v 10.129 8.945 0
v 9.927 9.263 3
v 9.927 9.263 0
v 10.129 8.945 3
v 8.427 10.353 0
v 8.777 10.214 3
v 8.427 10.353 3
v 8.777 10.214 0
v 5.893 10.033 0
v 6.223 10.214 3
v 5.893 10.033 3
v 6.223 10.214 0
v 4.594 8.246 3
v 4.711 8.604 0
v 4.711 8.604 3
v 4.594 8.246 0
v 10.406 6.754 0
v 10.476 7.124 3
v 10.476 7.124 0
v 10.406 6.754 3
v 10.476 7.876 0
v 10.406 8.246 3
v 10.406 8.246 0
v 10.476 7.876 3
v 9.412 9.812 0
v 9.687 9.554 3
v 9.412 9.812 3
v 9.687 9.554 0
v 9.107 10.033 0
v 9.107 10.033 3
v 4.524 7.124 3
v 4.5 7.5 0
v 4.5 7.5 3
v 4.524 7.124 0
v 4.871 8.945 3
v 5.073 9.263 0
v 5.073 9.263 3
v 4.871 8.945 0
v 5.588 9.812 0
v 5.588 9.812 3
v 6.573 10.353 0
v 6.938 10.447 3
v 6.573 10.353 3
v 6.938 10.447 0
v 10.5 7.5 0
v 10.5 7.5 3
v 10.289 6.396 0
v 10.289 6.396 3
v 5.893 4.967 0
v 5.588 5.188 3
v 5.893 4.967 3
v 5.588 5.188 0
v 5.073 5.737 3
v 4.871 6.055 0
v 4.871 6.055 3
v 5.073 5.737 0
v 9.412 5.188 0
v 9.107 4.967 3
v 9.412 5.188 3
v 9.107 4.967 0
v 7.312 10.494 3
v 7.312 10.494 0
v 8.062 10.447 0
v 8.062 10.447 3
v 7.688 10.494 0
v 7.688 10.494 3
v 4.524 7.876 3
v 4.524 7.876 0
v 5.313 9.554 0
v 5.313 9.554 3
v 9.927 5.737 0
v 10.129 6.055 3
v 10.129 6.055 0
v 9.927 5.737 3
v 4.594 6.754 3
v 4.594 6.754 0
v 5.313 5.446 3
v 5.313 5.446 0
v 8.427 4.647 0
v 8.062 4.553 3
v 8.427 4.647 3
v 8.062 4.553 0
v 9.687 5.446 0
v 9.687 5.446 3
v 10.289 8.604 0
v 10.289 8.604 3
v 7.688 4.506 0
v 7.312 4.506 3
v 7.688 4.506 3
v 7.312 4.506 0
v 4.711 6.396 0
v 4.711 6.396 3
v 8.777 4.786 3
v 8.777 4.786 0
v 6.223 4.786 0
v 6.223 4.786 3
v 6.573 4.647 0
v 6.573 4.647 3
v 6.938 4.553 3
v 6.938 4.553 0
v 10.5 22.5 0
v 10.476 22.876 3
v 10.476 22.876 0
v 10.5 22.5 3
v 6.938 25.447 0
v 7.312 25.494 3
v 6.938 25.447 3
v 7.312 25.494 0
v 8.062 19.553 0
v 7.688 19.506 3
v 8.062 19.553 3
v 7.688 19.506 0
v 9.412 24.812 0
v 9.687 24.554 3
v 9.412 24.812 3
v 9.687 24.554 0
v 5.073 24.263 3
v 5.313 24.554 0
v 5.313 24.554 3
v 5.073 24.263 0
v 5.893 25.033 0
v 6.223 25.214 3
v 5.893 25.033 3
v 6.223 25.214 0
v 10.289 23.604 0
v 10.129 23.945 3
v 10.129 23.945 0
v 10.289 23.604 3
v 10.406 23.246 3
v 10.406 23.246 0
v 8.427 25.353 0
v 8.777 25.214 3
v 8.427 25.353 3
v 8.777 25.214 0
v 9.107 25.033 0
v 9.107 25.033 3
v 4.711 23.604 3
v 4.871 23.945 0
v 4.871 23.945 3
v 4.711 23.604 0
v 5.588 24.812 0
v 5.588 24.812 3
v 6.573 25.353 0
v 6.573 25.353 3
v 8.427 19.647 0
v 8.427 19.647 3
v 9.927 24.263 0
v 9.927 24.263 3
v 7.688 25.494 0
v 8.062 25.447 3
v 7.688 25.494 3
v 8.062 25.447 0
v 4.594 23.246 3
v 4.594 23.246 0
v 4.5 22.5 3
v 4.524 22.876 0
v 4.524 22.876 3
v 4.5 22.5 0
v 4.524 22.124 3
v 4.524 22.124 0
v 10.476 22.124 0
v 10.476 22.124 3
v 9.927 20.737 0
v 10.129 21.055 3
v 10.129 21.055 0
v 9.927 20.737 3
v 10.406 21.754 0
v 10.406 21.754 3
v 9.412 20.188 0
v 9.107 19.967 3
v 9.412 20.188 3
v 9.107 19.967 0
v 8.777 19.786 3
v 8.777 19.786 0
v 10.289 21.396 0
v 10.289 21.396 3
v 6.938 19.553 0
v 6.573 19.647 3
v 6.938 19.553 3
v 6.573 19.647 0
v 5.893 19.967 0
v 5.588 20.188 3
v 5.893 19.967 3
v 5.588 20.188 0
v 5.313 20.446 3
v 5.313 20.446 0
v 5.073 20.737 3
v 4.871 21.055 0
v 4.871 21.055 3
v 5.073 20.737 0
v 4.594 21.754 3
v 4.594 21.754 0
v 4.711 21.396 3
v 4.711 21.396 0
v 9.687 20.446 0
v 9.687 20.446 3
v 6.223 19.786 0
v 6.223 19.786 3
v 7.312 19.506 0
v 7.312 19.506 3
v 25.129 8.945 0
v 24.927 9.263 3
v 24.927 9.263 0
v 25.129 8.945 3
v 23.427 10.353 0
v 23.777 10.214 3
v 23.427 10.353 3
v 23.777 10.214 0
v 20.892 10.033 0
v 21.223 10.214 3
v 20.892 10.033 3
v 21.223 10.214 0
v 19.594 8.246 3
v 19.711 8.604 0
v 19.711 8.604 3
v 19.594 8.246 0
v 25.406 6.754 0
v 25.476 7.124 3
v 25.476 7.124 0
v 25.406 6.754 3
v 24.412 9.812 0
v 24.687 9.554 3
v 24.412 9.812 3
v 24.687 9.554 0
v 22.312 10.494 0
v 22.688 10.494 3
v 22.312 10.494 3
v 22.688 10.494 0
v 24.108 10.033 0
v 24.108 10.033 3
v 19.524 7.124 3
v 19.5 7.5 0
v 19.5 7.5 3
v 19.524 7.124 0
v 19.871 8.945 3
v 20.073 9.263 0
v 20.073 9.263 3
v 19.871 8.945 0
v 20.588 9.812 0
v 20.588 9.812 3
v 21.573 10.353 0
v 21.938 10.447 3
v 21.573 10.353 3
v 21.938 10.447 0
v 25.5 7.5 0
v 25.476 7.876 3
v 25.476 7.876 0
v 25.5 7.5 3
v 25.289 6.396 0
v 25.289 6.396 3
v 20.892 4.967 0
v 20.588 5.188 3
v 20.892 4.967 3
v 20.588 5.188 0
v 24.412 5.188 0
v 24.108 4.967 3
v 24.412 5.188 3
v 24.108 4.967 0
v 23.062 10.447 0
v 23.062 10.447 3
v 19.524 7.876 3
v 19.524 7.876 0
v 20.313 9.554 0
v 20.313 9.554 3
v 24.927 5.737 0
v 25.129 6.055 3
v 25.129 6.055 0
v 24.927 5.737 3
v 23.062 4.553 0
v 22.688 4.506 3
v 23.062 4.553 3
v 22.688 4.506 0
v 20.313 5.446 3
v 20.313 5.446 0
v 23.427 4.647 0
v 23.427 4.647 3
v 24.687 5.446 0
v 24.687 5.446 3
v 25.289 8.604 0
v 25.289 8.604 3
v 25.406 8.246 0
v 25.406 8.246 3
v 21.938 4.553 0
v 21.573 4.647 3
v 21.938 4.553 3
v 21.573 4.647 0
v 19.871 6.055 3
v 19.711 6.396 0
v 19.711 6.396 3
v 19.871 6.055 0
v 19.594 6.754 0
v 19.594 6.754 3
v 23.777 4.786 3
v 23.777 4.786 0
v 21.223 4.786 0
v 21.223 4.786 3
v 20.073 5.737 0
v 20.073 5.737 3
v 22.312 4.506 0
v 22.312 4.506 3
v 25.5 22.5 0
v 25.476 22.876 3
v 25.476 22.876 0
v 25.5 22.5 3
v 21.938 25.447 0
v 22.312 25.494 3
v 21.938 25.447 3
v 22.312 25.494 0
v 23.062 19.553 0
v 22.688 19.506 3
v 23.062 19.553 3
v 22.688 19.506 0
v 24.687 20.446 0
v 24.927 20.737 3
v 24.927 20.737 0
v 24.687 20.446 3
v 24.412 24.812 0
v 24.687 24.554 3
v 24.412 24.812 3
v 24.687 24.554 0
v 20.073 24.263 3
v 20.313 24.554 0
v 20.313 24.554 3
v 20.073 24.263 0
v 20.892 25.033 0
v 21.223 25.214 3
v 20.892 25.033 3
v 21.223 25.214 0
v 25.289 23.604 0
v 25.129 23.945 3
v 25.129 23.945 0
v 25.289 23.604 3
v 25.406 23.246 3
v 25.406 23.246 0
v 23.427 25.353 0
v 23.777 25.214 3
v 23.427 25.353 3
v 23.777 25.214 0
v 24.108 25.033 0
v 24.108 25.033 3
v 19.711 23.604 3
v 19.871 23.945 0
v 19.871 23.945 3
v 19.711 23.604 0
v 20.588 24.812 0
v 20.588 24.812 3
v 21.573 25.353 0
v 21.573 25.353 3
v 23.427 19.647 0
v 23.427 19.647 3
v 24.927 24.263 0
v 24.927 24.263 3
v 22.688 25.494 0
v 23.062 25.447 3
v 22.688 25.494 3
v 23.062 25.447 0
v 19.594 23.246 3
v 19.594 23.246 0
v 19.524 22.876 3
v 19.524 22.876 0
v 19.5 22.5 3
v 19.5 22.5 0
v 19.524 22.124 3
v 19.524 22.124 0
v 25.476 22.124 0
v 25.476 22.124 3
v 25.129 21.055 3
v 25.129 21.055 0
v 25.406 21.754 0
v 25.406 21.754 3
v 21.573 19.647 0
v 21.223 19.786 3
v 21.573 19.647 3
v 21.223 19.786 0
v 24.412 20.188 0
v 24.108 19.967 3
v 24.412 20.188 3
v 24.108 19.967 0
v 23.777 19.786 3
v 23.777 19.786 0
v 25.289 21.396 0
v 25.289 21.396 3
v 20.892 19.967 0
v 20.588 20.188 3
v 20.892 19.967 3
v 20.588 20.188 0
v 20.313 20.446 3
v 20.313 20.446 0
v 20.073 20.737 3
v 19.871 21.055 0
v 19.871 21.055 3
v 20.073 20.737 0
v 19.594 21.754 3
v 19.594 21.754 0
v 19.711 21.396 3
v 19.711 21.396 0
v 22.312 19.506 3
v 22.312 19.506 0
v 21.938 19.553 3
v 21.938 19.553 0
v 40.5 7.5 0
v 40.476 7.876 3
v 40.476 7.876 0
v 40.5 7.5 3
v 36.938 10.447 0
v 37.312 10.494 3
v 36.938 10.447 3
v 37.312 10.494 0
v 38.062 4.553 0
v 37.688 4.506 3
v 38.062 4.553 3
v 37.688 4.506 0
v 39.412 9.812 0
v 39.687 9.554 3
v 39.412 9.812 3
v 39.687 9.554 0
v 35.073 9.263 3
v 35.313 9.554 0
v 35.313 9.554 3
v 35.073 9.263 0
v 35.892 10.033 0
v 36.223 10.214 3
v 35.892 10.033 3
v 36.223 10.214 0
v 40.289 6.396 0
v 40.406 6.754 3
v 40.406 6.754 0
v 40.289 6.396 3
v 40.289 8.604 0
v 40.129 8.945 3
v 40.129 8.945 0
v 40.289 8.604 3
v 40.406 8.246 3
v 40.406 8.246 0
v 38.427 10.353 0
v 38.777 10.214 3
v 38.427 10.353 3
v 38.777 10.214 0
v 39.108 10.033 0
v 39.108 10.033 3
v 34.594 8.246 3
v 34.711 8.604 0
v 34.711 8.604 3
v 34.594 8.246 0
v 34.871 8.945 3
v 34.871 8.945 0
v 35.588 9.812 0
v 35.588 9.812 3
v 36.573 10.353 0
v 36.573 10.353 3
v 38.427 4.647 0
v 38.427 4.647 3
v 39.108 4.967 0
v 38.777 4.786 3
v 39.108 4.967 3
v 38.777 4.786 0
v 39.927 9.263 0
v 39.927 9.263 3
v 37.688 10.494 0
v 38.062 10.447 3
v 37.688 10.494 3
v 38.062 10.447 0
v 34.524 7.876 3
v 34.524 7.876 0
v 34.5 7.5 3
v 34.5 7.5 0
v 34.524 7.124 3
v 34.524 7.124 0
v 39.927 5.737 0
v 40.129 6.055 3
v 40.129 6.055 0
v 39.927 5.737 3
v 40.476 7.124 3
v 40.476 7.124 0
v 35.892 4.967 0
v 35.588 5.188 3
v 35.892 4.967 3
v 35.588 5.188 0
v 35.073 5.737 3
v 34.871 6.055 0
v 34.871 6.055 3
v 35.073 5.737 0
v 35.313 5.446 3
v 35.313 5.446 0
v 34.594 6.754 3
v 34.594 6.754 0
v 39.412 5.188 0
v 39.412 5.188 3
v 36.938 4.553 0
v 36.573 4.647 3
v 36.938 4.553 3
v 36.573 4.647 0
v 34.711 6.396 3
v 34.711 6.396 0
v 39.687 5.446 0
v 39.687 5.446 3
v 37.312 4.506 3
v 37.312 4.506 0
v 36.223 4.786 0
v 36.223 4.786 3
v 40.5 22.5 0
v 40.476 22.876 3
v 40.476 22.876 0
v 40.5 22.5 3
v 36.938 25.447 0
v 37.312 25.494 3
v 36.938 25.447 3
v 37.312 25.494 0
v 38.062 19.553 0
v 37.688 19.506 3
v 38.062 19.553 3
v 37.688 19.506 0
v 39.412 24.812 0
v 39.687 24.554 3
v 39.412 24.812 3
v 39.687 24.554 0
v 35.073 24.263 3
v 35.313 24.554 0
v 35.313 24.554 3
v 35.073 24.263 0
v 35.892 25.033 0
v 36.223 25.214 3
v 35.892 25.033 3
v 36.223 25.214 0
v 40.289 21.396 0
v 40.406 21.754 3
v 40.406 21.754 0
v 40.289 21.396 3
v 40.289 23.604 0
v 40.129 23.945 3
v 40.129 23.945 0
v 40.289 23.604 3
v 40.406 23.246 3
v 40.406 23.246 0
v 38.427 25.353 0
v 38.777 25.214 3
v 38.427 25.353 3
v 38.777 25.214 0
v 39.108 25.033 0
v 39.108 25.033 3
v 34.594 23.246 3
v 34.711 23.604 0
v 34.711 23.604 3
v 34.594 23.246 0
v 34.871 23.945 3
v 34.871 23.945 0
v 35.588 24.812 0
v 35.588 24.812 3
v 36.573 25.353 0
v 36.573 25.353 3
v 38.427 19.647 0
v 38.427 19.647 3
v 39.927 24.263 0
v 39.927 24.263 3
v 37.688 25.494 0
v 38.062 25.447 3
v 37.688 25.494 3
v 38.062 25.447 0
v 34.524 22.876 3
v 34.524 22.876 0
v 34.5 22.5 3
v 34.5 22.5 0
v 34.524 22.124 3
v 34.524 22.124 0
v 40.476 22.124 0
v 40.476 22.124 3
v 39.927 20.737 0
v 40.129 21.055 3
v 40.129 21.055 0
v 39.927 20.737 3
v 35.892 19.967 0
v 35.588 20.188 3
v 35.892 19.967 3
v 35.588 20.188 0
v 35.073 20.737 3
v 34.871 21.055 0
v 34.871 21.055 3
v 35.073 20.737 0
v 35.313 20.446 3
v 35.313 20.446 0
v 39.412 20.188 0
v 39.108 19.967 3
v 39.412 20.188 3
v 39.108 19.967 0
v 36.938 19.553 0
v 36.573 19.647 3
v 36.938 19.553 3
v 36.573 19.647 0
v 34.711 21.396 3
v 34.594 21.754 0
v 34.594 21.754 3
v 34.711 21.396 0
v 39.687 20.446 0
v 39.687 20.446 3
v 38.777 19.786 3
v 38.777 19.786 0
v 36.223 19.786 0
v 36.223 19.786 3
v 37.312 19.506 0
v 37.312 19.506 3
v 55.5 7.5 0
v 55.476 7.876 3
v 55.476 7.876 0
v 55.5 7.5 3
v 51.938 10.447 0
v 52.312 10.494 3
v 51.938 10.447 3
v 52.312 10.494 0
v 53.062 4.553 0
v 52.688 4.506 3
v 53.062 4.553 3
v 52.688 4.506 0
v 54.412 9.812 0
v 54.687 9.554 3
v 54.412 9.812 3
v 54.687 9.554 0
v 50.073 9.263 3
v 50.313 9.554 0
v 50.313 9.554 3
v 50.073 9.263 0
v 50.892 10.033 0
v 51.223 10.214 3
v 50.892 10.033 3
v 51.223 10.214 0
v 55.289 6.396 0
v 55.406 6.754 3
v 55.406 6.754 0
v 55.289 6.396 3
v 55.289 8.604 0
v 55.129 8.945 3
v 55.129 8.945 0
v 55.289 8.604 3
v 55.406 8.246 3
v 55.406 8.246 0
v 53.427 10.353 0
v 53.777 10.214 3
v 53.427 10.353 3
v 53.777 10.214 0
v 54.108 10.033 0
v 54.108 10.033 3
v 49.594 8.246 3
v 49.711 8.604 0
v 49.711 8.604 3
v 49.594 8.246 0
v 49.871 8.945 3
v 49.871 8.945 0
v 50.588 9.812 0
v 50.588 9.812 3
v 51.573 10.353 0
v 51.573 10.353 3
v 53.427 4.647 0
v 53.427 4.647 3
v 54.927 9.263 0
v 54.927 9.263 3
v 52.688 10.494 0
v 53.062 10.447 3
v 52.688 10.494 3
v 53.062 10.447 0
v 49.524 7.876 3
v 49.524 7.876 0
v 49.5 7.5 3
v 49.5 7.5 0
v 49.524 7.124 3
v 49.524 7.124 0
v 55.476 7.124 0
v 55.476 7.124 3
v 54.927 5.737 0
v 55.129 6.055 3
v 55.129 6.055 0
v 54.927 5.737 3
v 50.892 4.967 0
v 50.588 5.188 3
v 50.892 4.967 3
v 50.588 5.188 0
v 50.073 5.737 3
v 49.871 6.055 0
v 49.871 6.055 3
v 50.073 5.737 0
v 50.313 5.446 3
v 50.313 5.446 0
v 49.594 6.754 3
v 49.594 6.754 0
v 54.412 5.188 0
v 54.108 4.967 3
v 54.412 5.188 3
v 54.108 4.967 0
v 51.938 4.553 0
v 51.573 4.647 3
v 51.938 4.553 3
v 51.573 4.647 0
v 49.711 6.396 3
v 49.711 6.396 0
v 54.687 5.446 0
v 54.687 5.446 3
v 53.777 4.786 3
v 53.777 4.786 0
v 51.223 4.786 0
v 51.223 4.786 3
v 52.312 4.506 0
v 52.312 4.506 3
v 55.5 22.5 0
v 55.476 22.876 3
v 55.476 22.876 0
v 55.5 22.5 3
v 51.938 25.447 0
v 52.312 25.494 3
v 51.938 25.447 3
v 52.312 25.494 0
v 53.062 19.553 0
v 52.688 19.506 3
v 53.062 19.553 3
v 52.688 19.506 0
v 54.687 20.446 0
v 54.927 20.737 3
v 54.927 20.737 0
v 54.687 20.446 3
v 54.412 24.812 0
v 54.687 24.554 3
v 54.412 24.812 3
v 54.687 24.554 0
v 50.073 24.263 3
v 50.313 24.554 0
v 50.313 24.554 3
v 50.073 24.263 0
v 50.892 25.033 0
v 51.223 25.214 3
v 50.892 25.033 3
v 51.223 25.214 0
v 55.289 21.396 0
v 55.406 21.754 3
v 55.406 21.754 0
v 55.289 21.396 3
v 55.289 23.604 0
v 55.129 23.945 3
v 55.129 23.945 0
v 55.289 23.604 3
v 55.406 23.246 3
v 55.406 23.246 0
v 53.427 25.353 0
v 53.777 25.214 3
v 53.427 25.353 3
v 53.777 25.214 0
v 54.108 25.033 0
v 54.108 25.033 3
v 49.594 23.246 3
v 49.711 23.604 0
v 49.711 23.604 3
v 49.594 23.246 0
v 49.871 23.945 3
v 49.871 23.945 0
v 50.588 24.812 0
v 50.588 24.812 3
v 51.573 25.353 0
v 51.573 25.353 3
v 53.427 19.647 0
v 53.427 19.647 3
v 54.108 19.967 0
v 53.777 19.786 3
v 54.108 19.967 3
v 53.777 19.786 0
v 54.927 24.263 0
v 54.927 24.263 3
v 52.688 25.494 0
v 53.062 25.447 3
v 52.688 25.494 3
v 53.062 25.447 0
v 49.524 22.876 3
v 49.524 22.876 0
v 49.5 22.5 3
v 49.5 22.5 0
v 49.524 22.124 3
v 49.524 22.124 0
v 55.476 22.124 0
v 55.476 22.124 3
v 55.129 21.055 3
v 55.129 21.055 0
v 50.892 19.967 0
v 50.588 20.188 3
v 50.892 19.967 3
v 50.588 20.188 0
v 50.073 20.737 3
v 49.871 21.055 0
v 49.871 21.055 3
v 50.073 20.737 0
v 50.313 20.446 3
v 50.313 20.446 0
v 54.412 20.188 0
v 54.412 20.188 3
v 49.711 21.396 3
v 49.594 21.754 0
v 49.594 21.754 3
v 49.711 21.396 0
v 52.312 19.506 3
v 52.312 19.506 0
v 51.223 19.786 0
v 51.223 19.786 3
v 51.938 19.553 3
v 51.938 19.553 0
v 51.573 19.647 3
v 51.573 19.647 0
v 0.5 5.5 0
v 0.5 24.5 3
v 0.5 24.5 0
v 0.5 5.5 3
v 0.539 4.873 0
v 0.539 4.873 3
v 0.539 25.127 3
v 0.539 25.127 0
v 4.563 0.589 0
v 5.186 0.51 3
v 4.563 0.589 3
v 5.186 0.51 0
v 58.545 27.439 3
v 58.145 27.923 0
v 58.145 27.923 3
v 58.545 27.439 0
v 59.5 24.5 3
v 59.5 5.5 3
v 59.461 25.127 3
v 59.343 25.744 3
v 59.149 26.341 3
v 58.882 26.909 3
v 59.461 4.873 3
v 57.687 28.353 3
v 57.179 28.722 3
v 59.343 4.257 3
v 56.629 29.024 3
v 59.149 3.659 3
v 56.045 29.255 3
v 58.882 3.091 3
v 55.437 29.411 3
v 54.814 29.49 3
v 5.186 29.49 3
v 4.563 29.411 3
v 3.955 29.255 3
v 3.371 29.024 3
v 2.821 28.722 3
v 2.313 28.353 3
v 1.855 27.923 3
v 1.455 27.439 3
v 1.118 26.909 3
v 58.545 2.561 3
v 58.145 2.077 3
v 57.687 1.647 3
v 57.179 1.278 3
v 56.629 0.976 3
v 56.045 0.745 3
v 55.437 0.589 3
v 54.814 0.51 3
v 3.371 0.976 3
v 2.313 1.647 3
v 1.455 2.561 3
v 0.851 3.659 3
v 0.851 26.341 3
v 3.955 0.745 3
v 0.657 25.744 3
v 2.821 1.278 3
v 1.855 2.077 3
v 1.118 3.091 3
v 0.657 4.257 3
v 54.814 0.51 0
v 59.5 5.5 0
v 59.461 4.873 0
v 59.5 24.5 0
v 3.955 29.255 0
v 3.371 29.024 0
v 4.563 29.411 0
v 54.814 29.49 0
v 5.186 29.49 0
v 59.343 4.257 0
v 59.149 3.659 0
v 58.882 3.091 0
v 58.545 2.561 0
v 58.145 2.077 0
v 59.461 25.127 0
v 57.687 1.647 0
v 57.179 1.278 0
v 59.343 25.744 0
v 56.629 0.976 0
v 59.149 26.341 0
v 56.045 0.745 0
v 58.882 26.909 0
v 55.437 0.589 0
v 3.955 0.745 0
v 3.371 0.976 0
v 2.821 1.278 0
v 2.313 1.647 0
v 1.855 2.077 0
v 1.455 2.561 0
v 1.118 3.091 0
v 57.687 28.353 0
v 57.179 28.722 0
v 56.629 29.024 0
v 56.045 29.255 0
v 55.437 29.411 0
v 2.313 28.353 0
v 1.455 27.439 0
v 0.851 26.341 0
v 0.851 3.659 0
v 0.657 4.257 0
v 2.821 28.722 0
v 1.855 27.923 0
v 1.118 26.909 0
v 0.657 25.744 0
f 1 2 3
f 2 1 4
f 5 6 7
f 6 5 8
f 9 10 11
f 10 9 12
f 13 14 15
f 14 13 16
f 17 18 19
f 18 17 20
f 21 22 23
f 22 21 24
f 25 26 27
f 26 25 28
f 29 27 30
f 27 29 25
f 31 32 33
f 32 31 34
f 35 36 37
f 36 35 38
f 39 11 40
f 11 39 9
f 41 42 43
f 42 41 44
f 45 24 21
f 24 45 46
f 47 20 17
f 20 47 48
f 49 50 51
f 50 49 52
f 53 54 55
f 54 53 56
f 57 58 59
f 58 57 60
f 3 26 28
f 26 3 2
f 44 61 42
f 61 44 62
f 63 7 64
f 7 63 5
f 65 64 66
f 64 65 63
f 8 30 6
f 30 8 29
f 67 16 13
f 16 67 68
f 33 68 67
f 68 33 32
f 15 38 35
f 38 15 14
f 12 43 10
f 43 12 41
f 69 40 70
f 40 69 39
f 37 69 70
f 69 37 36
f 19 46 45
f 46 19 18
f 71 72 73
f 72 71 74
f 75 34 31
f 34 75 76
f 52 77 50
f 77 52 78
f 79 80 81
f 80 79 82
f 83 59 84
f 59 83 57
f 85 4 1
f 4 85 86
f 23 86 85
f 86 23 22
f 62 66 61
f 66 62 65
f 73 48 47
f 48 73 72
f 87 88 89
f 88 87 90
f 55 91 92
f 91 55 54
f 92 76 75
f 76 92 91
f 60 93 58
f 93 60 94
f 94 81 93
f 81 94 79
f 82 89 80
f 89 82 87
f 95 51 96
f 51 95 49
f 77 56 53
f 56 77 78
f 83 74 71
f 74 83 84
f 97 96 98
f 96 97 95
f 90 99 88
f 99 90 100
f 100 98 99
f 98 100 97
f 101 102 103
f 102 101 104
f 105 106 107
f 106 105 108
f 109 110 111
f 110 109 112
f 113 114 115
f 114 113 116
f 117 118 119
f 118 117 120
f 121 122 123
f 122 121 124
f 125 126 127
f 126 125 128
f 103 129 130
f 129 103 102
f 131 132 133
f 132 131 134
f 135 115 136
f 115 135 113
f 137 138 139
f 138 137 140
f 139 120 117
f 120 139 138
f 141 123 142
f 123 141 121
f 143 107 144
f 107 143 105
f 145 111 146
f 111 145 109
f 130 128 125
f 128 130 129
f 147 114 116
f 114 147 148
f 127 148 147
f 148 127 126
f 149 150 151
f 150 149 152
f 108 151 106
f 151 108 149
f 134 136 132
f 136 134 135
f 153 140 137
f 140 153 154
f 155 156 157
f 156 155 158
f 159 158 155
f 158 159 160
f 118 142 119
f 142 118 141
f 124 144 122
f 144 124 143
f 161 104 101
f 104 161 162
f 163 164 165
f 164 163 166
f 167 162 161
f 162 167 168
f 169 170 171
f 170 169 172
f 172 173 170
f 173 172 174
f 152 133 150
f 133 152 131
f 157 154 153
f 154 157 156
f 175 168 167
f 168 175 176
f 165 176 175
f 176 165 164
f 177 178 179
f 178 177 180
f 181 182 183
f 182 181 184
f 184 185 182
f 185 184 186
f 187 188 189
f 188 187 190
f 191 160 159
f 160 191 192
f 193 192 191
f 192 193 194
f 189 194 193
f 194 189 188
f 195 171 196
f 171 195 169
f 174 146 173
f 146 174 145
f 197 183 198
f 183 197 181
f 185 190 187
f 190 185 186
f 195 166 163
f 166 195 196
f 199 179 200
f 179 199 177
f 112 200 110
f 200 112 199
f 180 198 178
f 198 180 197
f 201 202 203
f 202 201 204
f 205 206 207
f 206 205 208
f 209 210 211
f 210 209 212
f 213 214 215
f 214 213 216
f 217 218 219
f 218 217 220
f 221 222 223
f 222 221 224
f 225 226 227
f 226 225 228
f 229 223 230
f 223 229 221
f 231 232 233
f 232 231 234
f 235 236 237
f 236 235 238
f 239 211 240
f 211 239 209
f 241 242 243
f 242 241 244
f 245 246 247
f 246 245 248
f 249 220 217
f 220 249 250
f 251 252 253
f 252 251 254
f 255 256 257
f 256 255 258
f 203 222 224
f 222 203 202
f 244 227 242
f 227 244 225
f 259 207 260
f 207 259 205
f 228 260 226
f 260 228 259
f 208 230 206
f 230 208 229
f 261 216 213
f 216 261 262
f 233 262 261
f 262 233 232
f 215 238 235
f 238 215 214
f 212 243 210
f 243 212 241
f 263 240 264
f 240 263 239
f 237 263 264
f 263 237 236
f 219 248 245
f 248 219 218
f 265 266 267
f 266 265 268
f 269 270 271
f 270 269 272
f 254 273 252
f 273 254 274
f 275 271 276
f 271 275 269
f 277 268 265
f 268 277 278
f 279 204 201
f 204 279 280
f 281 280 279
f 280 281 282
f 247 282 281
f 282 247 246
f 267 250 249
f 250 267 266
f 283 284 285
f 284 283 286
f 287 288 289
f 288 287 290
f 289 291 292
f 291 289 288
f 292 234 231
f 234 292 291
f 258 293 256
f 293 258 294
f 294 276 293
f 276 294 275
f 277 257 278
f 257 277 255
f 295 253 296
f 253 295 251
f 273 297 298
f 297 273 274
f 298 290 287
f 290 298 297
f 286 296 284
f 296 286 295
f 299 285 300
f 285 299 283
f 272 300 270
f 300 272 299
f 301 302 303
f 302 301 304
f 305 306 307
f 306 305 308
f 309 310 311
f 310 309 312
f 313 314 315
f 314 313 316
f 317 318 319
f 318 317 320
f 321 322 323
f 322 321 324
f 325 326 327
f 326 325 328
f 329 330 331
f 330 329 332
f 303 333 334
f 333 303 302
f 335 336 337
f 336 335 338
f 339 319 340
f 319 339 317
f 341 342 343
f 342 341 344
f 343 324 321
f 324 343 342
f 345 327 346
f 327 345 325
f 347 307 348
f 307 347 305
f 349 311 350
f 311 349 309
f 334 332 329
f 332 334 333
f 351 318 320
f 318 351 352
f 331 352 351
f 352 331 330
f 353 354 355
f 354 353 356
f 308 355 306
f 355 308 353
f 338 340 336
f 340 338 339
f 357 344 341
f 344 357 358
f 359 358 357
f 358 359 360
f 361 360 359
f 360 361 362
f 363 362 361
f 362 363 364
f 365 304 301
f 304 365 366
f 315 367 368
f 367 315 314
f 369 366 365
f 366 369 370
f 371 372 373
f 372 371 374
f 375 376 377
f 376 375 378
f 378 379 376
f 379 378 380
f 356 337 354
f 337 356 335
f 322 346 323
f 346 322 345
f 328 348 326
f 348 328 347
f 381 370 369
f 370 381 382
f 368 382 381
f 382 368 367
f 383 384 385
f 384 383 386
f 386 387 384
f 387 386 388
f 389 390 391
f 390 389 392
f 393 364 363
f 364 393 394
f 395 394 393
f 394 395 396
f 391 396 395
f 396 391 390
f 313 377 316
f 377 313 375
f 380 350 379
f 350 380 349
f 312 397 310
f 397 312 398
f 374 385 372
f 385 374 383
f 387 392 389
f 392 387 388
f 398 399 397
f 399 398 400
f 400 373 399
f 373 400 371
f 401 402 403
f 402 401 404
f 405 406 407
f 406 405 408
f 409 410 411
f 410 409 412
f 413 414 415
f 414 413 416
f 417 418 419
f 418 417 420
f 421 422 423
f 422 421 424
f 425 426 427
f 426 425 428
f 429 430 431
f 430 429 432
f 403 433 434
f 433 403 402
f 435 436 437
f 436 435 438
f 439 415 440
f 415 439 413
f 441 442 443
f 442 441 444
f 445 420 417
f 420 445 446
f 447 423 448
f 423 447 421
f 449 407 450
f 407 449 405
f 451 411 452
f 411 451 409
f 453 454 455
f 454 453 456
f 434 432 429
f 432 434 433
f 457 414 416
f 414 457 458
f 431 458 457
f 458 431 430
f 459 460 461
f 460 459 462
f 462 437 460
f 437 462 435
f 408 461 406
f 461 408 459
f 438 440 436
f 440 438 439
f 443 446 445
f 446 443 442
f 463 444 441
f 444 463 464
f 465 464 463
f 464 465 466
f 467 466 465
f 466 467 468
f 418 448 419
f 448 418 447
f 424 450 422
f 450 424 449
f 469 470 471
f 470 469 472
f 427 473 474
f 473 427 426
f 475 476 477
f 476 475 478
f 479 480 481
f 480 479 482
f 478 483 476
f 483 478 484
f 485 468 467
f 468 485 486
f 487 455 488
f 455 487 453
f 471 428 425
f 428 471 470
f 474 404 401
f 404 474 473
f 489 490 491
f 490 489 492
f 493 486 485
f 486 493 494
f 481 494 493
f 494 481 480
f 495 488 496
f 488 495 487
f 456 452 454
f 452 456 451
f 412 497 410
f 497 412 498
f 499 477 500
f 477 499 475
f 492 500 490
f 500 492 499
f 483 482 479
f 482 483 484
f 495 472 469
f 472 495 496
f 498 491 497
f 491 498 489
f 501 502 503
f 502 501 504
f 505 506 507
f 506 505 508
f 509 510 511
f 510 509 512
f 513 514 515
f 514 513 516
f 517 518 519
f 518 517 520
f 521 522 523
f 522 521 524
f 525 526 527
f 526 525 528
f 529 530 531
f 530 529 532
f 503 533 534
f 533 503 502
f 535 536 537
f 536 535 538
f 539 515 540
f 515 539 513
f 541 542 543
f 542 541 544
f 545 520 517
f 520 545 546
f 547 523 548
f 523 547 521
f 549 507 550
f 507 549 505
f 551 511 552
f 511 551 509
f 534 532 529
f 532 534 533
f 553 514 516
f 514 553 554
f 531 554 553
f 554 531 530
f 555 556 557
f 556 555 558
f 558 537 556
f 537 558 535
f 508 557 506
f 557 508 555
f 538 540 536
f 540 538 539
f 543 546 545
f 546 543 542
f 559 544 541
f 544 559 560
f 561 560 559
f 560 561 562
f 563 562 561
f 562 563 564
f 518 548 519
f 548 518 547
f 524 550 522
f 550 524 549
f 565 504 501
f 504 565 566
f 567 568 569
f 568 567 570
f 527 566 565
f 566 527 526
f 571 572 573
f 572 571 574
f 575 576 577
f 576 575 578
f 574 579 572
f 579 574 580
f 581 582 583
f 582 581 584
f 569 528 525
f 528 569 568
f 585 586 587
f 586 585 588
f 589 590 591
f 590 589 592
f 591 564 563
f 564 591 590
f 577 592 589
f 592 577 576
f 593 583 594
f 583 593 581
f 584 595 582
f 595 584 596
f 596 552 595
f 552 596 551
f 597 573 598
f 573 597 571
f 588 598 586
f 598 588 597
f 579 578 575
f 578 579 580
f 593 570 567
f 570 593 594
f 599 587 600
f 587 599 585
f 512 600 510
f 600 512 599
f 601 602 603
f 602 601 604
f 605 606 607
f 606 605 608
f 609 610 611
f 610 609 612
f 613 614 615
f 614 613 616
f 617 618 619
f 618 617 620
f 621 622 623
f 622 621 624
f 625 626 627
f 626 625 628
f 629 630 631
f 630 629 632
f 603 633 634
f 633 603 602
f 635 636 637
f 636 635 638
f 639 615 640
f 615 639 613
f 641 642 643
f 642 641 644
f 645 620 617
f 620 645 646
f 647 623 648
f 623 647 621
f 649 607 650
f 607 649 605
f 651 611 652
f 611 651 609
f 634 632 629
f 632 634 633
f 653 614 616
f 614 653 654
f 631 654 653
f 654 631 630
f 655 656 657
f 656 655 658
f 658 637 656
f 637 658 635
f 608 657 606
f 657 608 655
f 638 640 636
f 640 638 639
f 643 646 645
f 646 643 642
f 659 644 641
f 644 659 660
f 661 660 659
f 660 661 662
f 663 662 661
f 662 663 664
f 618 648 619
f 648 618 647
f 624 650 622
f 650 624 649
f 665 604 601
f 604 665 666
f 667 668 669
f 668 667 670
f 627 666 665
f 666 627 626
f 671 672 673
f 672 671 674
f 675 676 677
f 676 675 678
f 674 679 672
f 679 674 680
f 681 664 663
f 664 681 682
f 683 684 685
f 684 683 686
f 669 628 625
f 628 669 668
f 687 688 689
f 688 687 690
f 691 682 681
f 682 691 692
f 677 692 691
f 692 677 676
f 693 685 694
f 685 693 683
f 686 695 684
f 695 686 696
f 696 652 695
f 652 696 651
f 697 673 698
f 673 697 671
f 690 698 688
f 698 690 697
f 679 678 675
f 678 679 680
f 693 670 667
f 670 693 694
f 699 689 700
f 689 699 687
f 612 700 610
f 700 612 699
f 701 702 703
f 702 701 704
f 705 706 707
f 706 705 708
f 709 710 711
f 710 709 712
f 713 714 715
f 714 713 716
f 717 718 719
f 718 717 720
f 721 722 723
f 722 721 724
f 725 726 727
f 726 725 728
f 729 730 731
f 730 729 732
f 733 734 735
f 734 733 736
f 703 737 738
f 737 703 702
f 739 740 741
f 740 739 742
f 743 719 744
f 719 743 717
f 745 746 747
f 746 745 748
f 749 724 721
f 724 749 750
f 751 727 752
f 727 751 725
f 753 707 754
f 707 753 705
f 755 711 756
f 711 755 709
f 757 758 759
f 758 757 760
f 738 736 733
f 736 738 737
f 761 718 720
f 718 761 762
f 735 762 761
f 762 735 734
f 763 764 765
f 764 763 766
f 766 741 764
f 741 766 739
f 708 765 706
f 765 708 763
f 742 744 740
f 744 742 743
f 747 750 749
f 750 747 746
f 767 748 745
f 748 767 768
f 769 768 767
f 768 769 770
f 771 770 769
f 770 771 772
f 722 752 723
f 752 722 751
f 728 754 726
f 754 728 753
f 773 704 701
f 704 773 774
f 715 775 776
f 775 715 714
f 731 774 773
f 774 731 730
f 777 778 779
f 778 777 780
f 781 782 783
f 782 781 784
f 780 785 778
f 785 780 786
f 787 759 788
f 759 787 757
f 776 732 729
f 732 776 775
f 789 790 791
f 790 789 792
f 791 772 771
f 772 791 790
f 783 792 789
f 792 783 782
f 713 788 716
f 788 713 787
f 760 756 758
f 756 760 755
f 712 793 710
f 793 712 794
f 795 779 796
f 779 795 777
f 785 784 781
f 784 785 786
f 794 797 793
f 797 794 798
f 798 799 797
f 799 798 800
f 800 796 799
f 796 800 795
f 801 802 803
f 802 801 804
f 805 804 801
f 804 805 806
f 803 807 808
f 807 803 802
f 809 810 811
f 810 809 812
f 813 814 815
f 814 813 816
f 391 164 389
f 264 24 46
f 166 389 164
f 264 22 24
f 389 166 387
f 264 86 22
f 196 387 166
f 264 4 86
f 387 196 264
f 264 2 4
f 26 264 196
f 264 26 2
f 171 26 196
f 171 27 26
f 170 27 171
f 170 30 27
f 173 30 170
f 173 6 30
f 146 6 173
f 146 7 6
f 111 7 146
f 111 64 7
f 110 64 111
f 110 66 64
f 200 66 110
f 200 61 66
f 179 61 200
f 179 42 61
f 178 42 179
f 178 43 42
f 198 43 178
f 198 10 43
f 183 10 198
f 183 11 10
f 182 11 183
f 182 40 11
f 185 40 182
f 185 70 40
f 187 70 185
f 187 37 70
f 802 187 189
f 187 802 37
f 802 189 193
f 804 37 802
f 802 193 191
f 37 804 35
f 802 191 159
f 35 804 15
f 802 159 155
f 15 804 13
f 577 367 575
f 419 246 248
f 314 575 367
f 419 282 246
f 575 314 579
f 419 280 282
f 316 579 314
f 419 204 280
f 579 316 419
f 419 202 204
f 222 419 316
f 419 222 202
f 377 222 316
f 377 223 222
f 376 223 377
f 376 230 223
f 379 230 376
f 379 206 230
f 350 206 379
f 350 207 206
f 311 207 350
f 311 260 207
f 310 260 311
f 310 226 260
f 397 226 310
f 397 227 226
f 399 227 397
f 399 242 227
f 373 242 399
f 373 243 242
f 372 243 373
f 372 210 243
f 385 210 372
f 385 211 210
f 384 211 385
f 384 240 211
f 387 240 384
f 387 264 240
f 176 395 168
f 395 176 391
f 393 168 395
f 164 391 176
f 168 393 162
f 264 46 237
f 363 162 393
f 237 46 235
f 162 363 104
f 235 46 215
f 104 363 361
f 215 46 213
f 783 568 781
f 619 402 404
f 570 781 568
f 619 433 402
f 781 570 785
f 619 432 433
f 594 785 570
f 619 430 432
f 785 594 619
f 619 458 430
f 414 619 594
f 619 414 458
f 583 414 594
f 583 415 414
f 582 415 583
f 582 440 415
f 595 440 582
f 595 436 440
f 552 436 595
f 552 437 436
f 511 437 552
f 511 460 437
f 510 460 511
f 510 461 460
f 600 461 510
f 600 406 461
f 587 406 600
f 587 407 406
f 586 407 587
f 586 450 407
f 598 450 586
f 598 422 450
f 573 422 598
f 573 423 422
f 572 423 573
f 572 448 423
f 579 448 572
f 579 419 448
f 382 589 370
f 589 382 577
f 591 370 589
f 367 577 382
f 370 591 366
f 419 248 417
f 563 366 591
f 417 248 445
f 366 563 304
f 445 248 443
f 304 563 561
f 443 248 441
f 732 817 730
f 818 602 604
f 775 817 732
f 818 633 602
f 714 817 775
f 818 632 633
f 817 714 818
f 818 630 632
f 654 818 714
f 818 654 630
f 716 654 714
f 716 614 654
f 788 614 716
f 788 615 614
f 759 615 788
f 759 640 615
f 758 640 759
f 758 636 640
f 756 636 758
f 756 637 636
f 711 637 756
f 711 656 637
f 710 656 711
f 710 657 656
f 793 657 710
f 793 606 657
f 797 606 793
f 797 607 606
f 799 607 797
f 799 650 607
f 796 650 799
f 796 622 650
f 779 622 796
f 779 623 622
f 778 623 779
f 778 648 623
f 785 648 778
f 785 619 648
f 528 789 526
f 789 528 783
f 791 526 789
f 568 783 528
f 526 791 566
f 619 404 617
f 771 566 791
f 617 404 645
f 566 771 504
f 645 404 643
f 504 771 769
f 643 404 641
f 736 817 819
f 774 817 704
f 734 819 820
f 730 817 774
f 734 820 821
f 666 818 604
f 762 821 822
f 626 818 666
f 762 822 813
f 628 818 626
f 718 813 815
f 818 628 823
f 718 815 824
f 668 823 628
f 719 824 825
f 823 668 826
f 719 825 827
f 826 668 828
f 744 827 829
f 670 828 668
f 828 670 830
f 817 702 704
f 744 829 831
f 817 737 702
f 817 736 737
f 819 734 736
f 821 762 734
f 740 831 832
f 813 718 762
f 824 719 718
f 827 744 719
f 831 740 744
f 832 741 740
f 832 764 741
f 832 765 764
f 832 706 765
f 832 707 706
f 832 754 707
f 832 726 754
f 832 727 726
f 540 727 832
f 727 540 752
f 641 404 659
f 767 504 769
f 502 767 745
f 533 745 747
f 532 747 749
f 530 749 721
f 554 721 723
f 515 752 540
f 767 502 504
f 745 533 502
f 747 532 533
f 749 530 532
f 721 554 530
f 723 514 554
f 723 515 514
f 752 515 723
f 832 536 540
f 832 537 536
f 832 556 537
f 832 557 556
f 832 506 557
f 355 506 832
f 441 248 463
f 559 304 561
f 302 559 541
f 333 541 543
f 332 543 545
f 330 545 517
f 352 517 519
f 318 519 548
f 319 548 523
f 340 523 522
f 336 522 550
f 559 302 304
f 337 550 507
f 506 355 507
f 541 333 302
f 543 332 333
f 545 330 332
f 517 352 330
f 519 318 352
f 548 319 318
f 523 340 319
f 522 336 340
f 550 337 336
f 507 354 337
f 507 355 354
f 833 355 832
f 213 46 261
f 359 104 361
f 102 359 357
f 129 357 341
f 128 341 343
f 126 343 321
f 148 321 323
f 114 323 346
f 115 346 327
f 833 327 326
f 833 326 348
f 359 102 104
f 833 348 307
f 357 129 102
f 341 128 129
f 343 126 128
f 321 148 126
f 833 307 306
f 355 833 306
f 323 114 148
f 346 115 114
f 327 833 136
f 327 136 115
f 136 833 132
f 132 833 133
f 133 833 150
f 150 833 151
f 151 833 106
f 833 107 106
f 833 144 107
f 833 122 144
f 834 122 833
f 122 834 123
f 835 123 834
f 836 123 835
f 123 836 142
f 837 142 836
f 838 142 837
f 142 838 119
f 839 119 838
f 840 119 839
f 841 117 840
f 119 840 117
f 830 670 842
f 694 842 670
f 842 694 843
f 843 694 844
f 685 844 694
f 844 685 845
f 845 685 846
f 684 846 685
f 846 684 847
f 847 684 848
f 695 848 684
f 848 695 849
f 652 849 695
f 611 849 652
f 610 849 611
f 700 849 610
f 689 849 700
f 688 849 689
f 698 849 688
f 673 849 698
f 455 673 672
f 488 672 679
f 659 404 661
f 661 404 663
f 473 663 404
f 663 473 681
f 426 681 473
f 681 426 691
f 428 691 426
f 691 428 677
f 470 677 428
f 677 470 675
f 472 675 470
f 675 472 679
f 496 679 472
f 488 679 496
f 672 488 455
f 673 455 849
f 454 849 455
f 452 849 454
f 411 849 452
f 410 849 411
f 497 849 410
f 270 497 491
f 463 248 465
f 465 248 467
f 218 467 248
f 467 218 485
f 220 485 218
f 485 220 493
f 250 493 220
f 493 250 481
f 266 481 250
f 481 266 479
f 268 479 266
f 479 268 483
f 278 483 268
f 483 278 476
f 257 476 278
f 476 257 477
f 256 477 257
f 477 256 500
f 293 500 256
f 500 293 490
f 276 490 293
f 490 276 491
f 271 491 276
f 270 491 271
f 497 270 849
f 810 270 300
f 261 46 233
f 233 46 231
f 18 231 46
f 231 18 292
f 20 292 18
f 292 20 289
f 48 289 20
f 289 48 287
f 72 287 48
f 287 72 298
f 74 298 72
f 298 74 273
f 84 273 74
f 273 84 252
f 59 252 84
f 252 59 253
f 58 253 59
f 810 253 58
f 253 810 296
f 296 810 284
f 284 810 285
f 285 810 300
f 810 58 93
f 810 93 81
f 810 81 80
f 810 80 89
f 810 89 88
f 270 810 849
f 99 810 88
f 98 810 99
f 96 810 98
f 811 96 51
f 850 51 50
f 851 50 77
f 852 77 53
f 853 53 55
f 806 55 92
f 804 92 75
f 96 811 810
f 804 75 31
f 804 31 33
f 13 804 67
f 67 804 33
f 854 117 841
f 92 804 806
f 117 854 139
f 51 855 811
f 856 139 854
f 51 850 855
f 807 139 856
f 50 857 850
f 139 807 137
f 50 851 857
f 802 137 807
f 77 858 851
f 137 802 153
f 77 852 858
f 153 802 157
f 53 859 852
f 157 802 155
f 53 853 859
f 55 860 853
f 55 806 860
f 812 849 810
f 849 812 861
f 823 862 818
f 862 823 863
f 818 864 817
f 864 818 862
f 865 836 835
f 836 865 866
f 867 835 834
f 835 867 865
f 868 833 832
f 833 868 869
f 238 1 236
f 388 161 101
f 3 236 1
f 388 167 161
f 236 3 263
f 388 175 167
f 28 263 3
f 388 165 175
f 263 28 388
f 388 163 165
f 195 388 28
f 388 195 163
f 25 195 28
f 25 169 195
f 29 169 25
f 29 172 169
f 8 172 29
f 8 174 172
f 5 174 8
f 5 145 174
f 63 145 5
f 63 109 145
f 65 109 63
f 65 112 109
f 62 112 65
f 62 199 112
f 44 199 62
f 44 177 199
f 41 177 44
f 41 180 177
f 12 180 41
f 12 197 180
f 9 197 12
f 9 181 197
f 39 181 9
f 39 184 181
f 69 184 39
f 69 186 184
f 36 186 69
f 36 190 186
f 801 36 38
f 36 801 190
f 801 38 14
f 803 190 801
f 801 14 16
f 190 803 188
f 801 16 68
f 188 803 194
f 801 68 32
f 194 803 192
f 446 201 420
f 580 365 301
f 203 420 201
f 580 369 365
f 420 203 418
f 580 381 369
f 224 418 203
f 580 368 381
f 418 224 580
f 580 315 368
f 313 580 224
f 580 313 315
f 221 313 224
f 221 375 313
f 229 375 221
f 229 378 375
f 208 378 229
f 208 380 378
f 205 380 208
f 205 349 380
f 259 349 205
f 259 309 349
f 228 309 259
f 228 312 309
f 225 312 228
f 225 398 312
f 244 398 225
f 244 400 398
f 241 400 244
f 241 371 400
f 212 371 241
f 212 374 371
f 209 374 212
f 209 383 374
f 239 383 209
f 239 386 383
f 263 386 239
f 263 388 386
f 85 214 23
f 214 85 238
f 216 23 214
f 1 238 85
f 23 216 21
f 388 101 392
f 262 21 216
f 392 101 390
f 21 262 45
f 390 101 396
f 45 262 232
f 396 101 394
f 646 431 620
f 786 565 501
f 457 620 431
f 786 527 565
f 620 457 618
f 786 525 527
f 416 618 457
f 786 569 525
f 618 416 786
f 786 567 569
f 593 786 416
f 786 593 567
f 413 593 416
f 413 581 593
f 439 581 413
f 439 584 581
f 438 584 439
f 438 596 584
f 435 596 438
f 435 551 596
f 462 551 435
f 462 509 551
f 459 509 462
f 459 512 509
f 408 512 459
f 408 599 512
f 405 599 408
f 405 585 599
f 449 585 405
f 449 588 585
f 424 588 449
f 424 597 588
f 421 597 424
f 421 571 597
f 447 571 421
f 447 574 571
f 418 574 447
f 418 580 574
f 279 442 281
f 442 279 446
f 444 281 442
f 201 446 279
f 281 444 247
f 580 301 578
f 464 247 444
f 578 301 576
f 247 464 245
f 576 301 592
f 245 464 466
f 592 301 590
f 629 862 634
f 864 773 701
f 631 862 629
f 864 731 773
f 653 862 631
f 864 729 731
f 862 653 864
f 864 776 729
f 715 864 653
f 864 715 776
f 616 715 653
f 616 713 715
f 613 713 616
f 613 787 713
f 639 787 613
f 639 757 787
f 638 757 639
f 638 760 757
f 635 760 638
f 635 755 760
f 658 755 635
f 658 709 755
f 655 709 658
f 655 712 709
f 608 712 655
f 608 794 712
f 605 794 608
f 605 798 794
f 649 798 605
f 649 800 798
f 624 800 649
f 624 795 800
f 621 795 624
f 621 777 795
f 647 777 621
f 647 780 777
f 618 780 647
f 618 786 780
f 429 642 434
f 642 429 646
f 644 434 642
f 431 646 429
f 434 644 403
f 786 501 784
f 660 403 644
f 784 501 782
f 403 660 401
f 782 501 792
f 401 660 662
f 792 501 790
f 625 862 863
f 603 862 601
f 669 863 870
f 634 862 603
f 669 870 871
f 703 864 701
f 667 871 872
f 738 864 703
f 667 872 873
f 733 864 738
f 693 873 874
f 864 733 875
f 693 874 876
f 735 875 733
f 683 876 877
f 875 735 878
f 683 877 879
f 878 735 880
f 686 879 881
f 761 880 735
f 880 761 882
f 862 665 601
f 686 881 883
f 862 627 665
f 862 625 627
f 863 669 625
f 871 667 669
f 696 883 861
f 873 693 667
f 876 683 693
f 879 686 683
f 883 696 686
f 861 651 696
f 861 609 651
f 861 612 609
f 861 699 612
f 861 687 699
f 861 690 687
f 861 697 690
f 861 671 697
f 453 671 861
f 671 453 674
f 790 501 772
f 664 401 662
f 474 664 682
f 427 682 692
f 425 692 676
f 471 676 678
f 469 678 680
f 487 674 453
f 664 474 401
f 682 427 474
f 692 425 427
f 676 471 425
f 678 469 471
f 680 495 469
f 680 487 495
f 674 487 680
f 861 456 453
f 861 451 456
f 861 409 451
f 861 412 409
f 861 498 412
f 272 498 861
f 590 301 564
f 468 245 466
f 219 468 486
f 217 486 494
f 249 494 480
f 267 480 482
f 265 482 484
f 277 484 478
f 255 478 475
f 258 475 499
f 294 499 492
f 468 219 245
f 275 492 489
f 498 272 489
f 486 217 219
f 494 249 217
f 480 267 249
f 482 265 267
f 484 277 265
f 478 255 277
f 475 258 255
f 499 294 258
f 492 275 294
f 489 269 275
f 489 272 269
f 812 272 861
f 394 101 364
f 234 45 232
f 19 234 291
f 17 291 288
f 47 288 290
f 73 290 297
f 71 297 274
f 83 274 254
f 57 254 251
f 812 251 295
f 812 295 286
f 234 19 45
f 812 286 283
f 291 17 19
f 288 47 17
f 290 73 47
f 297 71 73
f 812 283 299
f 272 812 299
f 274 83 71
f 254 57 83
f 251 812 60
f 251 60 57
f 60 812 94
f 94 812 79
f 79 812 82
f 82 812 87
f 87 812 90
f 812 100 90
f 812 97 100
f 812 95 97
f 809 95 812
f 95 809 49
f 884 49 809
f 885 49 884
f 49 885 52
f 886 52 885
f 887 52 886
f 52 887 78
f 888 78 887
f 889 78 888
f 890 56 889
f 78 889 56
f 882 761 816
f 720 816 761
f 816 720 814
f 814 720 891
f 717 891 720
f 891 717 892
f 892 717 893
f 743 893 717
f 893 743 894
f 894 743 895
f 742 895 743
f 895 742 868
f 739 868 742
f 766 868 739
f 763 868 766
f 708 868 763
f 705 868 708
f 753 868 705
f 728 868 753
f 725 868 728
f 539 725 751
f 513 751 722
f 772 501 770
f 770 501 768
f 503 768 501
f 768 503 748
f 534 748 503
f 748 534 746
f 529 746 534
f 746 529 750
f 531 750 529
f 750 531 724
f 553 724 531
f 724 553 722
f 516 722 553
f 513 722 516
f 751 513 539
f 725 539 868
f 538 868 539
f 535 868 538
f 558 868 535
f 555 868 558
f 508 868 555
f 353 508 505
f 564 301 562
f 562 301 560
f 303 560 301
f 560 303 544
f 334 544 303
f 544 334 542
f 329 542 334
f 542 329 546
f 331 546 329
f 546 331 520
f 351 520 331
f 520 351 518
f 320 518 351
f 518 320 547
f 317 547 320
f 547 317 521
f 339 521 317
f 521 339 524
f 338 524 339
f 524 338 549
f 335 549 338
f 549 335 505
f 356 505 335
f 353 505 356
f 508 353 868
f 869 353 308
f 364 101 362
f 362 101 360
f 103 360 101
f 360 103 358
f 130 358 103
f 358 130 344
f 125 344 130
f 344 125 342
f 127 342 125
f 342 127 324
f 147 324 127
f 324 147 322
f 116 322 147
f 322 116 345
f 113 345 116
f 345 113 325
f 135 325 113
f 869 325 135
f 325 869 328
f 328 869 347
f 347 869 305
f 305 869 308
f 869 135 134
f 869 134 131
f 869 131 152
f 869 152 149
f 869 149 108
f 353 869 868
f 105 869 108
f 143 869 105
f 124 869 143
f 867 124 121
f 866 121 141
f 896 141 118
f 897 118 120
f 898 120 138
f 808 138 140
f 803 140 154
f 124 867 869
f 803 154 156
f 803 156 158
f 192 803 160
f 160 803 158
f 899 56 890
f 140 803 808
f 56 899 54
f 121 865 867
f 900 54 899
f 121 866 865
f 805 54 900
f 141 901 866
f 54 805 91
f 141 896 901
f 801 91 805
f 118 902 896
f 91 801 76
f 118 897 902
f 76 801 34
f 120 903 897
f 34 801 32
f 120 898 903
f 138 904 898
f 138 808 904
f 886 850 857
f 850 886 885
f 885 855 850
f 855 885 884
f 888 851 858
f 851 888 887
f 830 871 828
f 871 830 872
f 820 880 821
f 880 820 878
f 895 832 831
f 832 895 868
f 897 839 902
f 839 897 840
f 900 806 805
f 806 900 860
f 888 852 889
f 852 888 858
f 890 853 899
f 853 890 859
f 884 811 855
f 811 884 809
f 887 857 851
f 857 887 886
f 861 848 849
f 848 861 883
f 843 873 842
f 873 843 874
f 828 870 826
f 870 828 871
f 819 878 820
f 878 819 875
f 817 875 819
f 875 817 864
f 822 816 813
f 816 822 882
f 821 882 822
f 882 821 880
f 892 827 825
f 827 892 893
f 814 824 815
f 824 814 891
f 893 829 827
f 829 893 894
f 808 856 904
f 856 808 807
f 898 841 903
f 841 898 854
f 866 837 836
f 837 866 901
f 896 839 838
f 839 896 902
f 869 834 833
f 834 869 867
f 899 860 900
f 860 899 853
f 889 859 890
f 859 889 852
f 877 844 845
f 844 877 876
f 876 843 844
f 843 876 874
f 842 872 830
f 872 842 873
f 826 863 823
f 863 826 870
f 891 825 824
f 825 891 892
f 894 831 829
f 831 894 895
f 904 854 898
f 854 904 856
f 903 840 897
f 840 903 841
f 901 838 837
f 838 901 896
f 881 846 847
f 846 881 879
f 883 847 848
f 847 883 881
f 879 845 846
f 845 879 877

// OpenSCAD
// Generated by SolidPython 1.1.3 on 2023-01-09 14:55:42
$fn = 50;


difference() {
	union() {
		translate(v = [30.0000000000, 15.0000000000, 0]) {
			rotate(a = [0, 0, 0]) {
				hull() {
					translate(v = [-24.5000000000, 9.5000000000, 0]) {
						rotate(a = [0, 0, 0]) {
							translate(v = [0, 0, 0]) {
								rotate(a = [0, 0, 0]) {
									cylinder(h = 3, r = 5);
								}
							}
						}
					}
					translate(v = [24.5000000000, 9.5000000000, 0]) {
						rotate(a = [0, 0, 0]) {
							translate(v = [0, 0, 0]) {
								rotate(a = [0, 0, 0]) {
									cylinder(h = 3, r = 5);
								}
							}
						}
					}
					translate(v = [-24.5000000000, -9.5000000000, 0]) {
						rotate(a = [0, 0, 0]) {
							translate(v = [0, 0, 0]) {
								rotate(a = [0, 0, 0]) {
									cylinder(h = 3, r = 5);
								}
							}
						}
					}
					translate(v = [24.5000000000, -9.5000000000, 0]) {
						rotate(a = [0, 0, 0]) {
							translate(v = [0, 0, 0]) {
								rotate(a = [0, 0, 0]) {
									cylinder(h = 3, r = 5);
								}
							}
						}
					}
				}
			}
		}
	}
	union() {
		translate(v = [7.5000000000, 7.5000000000, 0]) {
			rotate(a = [0, 0, 0]) {
				translate(v = [0, 0, -50]) {
					rotate(a = [0, 0, 0]) {
						cylinder(h = 100, r = 3.0000000000);
					}
				}
			}
		}
		translate(v = [7.5000000000, 22.5000000000, 0]) {
			rotate(a = [0, 0, 0]) {
				translate(v = [0, 0, -50]) {
					rotate(a = [0, 0, 0]) {
						cylinder(h = 100, r = 3.0000000000);
					}
				}
			}
		}
		translate(v = [22.5000000000, 7.5000000000, 0]) {
			rotate(a = [0, 0, 0]) {
				translate(v = [0, 0, -50]) {
					rotate(a = [0, 0, 0]) {
						cylinder(h = 100, r = 3.0000000000);
					}
				}
			}
		}
		translate(v = [22.5000000000, 22.5000000000, 0]) {
			rotate(a = [0, 0, 0]) {
				translate(v = [0, 0, -50]) {
					rotate(a = [0, 0, 0]) {
						cylinder(h = 100, r = 3.0000000000);
					}
				}
			}
		}
		translate(v = [37.5000000000, 7.5000000000, 0]) {
			rotate(a = [0, 0, 0]) {
				translate(v = [0, 0, -50]) {
					rotate(a = [0, 0, 0]) {
						cylinder(h = 100, r = 3.0000000000);
					}
				}
			}
		}
		translate(v = [37.5000000000, 22.5000000000, 0]) {
			rotate(a = [0, 0, 0]) {
				translate(v = [0, 0, -50]) {
					rotate(a = [0, 0, 0]) {
						cylinder(h = 100, r = 3.0000000000);
					}
				}
			}
		}
		translate(v = [52.5000000000, 7.5000000000, 0]) {
			rotate(a = [0, 0, 0]) {
				translate(v = [0, 0, -50]) {
					rotate(a = [0, 0, 0]) {
						cylinder(h = 100, r = 3.0000000000);
					}
				}
			}
		}
		translate(v = [52.5000000000, 22.5000000000, 0]) {
			rotate(a = [0, 0, 0]) {
				translate(v = [0, 0, -50]) {
					rotate(a = [0, 0, 0]) {
						cylinder(h = 100, r = 3.0000000000);
					}
				}
			}
		}
	}
}
/***********************************************
*********      SolidPython code:      **********
************************************************
 
from solid import *
import os
import subprocess

import oomB

import opsc_library_gen

mode = "laser"
#mode = "3d_print"

defined_objects = {}

radius_dict = {}
countersunk_dict = {}


def set_mode(m):
    global mode
    mode = m
    radius_dict['M6'] = 6.5/2
    radius_dict['M3'] = 3.3/2
    if mode == "laser":
        radius_dict['M6'] = 6/2
        radius_dict['M3'] = 3/2

    countersunk_dict['M3'] = {}
    countersunk_dict['M3']['little_rad'] = radius_dict['M3']
    countersunk_dict['M3']['big_rad'] = (5.5+0.6)/2
    if mode == "laser":
        countersunk_dict['M3']['big_rad'] = (4.75+0.6)/2
        countersunk_dict['M3']['little_rad'] = (4.75+0.6)/2

    countersunk_dict['M3']['height'] = 1.7


def opsc_make_object(filename, objects, save_type="none",resolution=50, layers = 1, tilediff = 200, mode="laser"):
    set_mode(mode)
    save_type = save_type.lower()
    os.makedirs(os.path.dirname(filename), exist_ok=True)
    final_object = opsc_get_object(objects)
    # Save the final object to the specified filename    
    scad_render_to_file(final_object, filename, file_header='$fn = %s;' % resolution, include_orig_code=True)
    if mode == "laser":
        filename_laser = filename.replace(".scad","-flat.scad")
        scad_render_to_file(getLaser(final_object, layers=layers, tilediff=tilediff), filename_laser, file_header='$fn = %s;' % resolution, include_orig_code=True)
        if save_type == "all":
            saveToAll(filename_laser)
        elif save_type == "dxf":
            saveToDxf(filename_laser)
    if save_type == "all":
        saveToAll(filename)
    elif save_type == "dxf":
        saveToDxf(filename)


def opsc_get_object(objects):
    # Create the solidpython objects
    positive_objects = [get_opsc_item(obj) for obj in objects if obj['type'] == 'positive']
    negative_objects = [get_opsc_item(obj) for obj in objects if obj['type'] == 'negative']
    # Union the positive objects
    positive_object = union()(*positive_objects)
    # Union the negative objects
    negative_object = union()(*negative_objects)
    # Create the final object by subtracting the negative objects from the positive objects
    return difference()(positive_object, negative_object)

def get_opsc_item(params):
    # A dictionary to map radius string values to numerical values
    #radius_dict = {'small': 5, 'medium': 10, 'large': 15}
    # An array of function names for basic shapes
    basic_shapes = ['cube', 'sphere', 'cylinder']
    
    # An array of function names for other shapes
    other_shapes = ['hole', 'slot', 'rounded_rectangle', 'countersunk']
    


    # Convert radius to r if present, and remove radius from the params dictionary
    if 'radius' in params:
        if isinstance(params['radius'], str):
            # Use the radius_dict to map the radius string value to a numerical value
            params['r'] = radius_dict[params['radius']]
        else:
            params['r'] = params['radius']
        del params['radius']
    

    # Check if the object type is a basic shape
    if params['shape'] in basic_shapes:
        # Remove shape and unexpected dictionary values
        allowed_keys = {'size', 'r', 'r1', 'r2', 'd', 'h', 'rw', 'rh', 'dw', 'dh'}
        shape_params = {k: v for k, v in params.items() if k in allowed_keys}

        # Call the corresponding function for the shape parameter, using ** notation to pass the shape_params dictionary as keyword arguments
        return get_opsc_transform(params,globals()[params['shape']](**shape_params))
    
    # If the object type is not a basic shape, check if it's a defined object or one of the other shapes
    elif params['shape'] in other_shapes:
        # Call the corresponding function for the shape parameter, passing the params dictionary as an argument
        p2 = copy.deepcopy(params)
        p2["pos"] = [0,0,0]
        return get_opsc_transform(params,globals()[params['shape']](p2))
    
    # If the object is not a basic shape or a defined object, try to import it from a .scad file
    else:
        obj = defined_objects[params['shape']]
        return get_opsc_transform(params,obj)

def get_opsc_transform(params, solid_obj):
    # Rotate the object based on the 'rot' field in the params dictionary, or the 'rotX', 'rotY', and 'rotZ' fields if 'rot' is not present
    rot = params.get('rot', [])
    if rot:
        rotX, rotY, rotZ = rot
    else:
        rotX = params.get('rotX', 0)
        rotY = params.get('rotY', 0)
        rotZ = params.get('rotZ', 0)
    solid_obj = rotate([rotX, rotY, rotZ])(solid_obj)

    # Translate the object based on the 'pos' field in the params dictionary, or the 'x', 'y', and 'z' fields if 'pos' is not present
    pos = params.get('pos', [])
    if pos:
        x, y, z = pos
    else:
        x = params.get('x', 0)
        y = params.get('y', 0)
        z = params.get('z', 0)
    solid_obj = translate([x, y, z])(solid_obj)
    return solid_obj


import random

def opsc_easy_array(type, shape, repeats, pos_start, shift_arr, **kwargs):
    for i in range(0,3):
        repeats.append(1)
        pos_start.append(0)
        shift_arr.append(0)
    return_objects = []

    for x in range(0,repeats[0]):
        for y in range(0,repeats[1]):
            for z in range(0,repeats[2]):
                return_objects.append(opsc_easy(type, shape, pos=[pos_start[0]+x*shift_arr[0],pos_start[1]+y*shift_arr[1],pos_start[2]+z*shift_arr[2]], **kwargs))
    return return_objects                



def opsc_easy(type, shape, **kwargs):
    obj = {
        'type': type,
        'shape': shape
    }
    for param in ['size', 'r', 'r1', 'r2', 'd', 'h', 'rw', 'rh', 'dw', 'dh', 'pos', 'x', 'y', 'z', 'rot', 'rotX', 'rotY', 'rotZ', "w"]:
        if param in kwargs:
            obj[param] = kwargs[param]
    return obj

def hole(params):
    p2 = copy.deepcopy(params)  
    # Check if the radius is a string and replace it with the corresponding value from the dictionary
    if isinstance(p2['r'], str):
        p2['r'] = radius_dict[p2['r']]
    
    # Set the height to 100 if not specified
    if 'h' not in p2:
        p2['h'] = 100
        p2["pos"] = [0,0,-50]
    p2["center"] = True
    # Create the cylinder object
    p2["shape"] = "cylinder"
    p2["type"] = "positive"

    return get_opsc_item(p2)

import copy

def countersunk(params):
    p2 = copy.deepcopy(params)
    counter_rad = p2['r']
    p2['r'] = radius_dict[p2['r']]
    hp = copy.deepcopy(p2)
    hp["type"] = "positive"
    hp["shape"] = "hole"
    del hp["rot"]
    hol = get_opsc_item(hp)
    
    cp = copy.deepcopy(p2)
    cp["h"] = countersunk_dict[counter_rad]["height"]
    cp["r2"] = countersunk_dict[counter_rad]["little_rad"]
    cp["r1"] = countersunk_dict[counter_rad]["big_rad"]
    del cp["r"]
    del cp["rot"]
    cp["type"] = "positive"
    cp["shape"] = "cylinder"
    cp["pos"] = [0,0,0]

    top = get_opsc_item(cp)
    return union()(hol,top)



def slot(params):  
    p2 = copy.deepcopy(params) 
    if isinstance(p2['r'], str):
        p2['r'] = radius_dict[p2['r']]
    p2["type"] = "positive"
    p2["shape"] = "hole"
    del p2["rot"]
    p2["pos"] = [0,0,0]
    left = copy.deepcopy(p2)
    right = copy.deepcopy(p2)
    left["pos"][0] = p2["w"] / 2 - p2["r"] 
    
    right["pos"][0] = -p2["w"] / 2 + p2["r"] 
    pass
    leftObj = get_opsc_item(left)
    rightObj = get_opsc_item(right)
    return hull()(leftObj, rightObj)

def rounded_rectangle(params):   
    p2 = copy.deepcopy(params) 
    p2["h"] = p2["size"][2]
    p2["pos"] = p2.get("pos", [0, 0, 0]) 
    p2["type"] = "positive"
    p2["shape"] = "hole"
    p2["pos"] = [0,0,0]
    
    if 'rot' in p2:
        del p2["rot"]   
    if 'r' not in p2:
        p2["r"] = 5 
    tl = copy.deepcopy(p2)
    tr = copy.deepcopy(p2)
    bl = copy.deepcopy(p2)
    br = copy.deepcopy(p2)
    tl["pos"][0] = -(p2["size"][0] - p2["r"]*2)/2
    tl["pos"][1] = (p2["size"][1] - p2["r"]*2)/2
    tr["pos"][0] = (p2["size"][0] - p2["r"]*2)/2
    tr["pos"][1] = (p2["size"][1] - p2["r"]*2)/2
    bl["pos"][0] = -(p2["size"][0] - p2["r"]*2)/2
    bl["pos"][1] = -(p2["size"][1] - p2["r"]*2)/2
    br["pos"][0] = (p2["size"][0] - p2["r"]*2)/2
    br["pos"][1] = -(p2["size"][1] - p2["r"]*2)/2
    del tl["size"]
    del tr["size"]
    del bl["size"]
    del br["size"]
    tlo = get_opsc_item(tl)
    tro = get_opsc_item(tr)
    blo = get_opsc_item(bl)
    bro = get_opsc_item(br)    
    return hull()(tlo, tro, blo, bro)



def import_scad_object(filename):
    # Import the .scad file and convert it to a solidpython object
    #filename = "parts"
    obj = import_scad(filename)
    return obj.main()
    


import os
import solid as solidpython

# A dictionary to store the defined objects


def load_scad_objects():
    opsc_library_gen.gen_library(defined_objects)

import random

def test(num_objects):
    objects = []
    for i in range(num_objects):
        # Choose a random shape
        #shape = random.choice(['cube', 'sphere', 'cylinder', 'hole', 'slot', "rounded_rectangle"])
        shape = random.choice(["rounded_rectangle"])

        # Choose a random type
        type = random.choice(['positive', 'negative'])
        
        # Create an empty object dictionary
        obj = {'shape': shape, 'type': type}
        
        # Set shape-specific parameters
        if obj['shape'] in ['cube']:
            obj['size'] =  [random.uniform(5, 15), random.uniform(5, 15), random.uniform(5, 15)]
        if obj['shape'] in ['rounded_rectangle']:
            obj['size'] =  [random.uniform(5, 15), random.uniform(5, 15), random.uniform(5, 15)]
            obj['r'] = random.uniform(0.5, 5)
        elif obj['shape'] == 'sphere':
            obj['r'] = random.uniform(5, 15)
        elif obj['shape'] in ['cylinder', 'hole']:
            obj['r'] = random.uniform(0.5, 5)
            obj['h'] = random.uniform(5, 15)
        elif obj['shape'] == 'slot':
            obj['r'] = random.uniform(0.5, 5)
            obj['h'] = random.uniform(5, 15)
            obj['w'] = random.uniform(5, 15)
        
        # Set a random position and rotation
        obj['pos'] = [random.uniform(-20, 20), random.uniform(-20, 20), random.uniform(-20, 20)]
        obj['rot'] = [random.uniform(-180, 180), random.uniform(-180, 180), random.uniform(-180, 180)]
        
        # Add the object to the list
        objects.append(obj)
    return objects

####### old file saving
def saveToAll(fileIn):
    saveToDxf(fileIn)
    saveToPng(fileIn)
    saveToStl(fileIn)
    saveToSvg(fileIn)

def saveToDxf(fileIn, fileOut="", copy_to_laser=True):
    if fileOut == "":
        fileOut = fileIn.replace(".scad",".dxf")
    saveToFile(fileIn, fileOut)


    
def saveToPng(fileIn, fileOut="",extra="--render"):
    if fileOut == "":
        fileOut = fileIn.replace(".scad",".png")
    saveToFile(fileIn, fileOut)

def saveToStl(fileIn, fileOut=""):
    if fileOut == "":
        fileOut = fileIn.replace(".scad",".stl")
    saveToFile(fileIn, fileOut)
    
def saveToSvg(fileIn, fileOut=""):
    if fileOut == "":
        fileOut = fileIn.replace(".scad",".svg")
    saveToFile(fileIn, fileOut)

def saveToFile(fileIn, fileOut,extra=""):
    #extra = extra + " --colorscheme Tomorrow"

    launchStr = 'openscad -o "' + fileOut + '"' + extra + ' "' + fileIn + '"'
    if ".png" in fileOut:
        launchStr = launchStr + " --render"
    print("            saveToFile launch string: " + launchStr)
    subprocess.run(launchStr)
    x=0

def getLaser(final_object,start=1.5,layers=1,thickness=3,tilediff=200):
        rv= []

        for x in range(layers):
            rv.append(translate([0,x*tilediff,0])(
                    projection()(
                        intersection()(translate([-500,-500,start+x*thickness])(cube(size=[1000,1000,0.1])),
                            final_object
                        )
                    )
            )
            )
            
        return union()(rv)

set_mode("laser")
load_scad_objects() 
 
************************************************/
